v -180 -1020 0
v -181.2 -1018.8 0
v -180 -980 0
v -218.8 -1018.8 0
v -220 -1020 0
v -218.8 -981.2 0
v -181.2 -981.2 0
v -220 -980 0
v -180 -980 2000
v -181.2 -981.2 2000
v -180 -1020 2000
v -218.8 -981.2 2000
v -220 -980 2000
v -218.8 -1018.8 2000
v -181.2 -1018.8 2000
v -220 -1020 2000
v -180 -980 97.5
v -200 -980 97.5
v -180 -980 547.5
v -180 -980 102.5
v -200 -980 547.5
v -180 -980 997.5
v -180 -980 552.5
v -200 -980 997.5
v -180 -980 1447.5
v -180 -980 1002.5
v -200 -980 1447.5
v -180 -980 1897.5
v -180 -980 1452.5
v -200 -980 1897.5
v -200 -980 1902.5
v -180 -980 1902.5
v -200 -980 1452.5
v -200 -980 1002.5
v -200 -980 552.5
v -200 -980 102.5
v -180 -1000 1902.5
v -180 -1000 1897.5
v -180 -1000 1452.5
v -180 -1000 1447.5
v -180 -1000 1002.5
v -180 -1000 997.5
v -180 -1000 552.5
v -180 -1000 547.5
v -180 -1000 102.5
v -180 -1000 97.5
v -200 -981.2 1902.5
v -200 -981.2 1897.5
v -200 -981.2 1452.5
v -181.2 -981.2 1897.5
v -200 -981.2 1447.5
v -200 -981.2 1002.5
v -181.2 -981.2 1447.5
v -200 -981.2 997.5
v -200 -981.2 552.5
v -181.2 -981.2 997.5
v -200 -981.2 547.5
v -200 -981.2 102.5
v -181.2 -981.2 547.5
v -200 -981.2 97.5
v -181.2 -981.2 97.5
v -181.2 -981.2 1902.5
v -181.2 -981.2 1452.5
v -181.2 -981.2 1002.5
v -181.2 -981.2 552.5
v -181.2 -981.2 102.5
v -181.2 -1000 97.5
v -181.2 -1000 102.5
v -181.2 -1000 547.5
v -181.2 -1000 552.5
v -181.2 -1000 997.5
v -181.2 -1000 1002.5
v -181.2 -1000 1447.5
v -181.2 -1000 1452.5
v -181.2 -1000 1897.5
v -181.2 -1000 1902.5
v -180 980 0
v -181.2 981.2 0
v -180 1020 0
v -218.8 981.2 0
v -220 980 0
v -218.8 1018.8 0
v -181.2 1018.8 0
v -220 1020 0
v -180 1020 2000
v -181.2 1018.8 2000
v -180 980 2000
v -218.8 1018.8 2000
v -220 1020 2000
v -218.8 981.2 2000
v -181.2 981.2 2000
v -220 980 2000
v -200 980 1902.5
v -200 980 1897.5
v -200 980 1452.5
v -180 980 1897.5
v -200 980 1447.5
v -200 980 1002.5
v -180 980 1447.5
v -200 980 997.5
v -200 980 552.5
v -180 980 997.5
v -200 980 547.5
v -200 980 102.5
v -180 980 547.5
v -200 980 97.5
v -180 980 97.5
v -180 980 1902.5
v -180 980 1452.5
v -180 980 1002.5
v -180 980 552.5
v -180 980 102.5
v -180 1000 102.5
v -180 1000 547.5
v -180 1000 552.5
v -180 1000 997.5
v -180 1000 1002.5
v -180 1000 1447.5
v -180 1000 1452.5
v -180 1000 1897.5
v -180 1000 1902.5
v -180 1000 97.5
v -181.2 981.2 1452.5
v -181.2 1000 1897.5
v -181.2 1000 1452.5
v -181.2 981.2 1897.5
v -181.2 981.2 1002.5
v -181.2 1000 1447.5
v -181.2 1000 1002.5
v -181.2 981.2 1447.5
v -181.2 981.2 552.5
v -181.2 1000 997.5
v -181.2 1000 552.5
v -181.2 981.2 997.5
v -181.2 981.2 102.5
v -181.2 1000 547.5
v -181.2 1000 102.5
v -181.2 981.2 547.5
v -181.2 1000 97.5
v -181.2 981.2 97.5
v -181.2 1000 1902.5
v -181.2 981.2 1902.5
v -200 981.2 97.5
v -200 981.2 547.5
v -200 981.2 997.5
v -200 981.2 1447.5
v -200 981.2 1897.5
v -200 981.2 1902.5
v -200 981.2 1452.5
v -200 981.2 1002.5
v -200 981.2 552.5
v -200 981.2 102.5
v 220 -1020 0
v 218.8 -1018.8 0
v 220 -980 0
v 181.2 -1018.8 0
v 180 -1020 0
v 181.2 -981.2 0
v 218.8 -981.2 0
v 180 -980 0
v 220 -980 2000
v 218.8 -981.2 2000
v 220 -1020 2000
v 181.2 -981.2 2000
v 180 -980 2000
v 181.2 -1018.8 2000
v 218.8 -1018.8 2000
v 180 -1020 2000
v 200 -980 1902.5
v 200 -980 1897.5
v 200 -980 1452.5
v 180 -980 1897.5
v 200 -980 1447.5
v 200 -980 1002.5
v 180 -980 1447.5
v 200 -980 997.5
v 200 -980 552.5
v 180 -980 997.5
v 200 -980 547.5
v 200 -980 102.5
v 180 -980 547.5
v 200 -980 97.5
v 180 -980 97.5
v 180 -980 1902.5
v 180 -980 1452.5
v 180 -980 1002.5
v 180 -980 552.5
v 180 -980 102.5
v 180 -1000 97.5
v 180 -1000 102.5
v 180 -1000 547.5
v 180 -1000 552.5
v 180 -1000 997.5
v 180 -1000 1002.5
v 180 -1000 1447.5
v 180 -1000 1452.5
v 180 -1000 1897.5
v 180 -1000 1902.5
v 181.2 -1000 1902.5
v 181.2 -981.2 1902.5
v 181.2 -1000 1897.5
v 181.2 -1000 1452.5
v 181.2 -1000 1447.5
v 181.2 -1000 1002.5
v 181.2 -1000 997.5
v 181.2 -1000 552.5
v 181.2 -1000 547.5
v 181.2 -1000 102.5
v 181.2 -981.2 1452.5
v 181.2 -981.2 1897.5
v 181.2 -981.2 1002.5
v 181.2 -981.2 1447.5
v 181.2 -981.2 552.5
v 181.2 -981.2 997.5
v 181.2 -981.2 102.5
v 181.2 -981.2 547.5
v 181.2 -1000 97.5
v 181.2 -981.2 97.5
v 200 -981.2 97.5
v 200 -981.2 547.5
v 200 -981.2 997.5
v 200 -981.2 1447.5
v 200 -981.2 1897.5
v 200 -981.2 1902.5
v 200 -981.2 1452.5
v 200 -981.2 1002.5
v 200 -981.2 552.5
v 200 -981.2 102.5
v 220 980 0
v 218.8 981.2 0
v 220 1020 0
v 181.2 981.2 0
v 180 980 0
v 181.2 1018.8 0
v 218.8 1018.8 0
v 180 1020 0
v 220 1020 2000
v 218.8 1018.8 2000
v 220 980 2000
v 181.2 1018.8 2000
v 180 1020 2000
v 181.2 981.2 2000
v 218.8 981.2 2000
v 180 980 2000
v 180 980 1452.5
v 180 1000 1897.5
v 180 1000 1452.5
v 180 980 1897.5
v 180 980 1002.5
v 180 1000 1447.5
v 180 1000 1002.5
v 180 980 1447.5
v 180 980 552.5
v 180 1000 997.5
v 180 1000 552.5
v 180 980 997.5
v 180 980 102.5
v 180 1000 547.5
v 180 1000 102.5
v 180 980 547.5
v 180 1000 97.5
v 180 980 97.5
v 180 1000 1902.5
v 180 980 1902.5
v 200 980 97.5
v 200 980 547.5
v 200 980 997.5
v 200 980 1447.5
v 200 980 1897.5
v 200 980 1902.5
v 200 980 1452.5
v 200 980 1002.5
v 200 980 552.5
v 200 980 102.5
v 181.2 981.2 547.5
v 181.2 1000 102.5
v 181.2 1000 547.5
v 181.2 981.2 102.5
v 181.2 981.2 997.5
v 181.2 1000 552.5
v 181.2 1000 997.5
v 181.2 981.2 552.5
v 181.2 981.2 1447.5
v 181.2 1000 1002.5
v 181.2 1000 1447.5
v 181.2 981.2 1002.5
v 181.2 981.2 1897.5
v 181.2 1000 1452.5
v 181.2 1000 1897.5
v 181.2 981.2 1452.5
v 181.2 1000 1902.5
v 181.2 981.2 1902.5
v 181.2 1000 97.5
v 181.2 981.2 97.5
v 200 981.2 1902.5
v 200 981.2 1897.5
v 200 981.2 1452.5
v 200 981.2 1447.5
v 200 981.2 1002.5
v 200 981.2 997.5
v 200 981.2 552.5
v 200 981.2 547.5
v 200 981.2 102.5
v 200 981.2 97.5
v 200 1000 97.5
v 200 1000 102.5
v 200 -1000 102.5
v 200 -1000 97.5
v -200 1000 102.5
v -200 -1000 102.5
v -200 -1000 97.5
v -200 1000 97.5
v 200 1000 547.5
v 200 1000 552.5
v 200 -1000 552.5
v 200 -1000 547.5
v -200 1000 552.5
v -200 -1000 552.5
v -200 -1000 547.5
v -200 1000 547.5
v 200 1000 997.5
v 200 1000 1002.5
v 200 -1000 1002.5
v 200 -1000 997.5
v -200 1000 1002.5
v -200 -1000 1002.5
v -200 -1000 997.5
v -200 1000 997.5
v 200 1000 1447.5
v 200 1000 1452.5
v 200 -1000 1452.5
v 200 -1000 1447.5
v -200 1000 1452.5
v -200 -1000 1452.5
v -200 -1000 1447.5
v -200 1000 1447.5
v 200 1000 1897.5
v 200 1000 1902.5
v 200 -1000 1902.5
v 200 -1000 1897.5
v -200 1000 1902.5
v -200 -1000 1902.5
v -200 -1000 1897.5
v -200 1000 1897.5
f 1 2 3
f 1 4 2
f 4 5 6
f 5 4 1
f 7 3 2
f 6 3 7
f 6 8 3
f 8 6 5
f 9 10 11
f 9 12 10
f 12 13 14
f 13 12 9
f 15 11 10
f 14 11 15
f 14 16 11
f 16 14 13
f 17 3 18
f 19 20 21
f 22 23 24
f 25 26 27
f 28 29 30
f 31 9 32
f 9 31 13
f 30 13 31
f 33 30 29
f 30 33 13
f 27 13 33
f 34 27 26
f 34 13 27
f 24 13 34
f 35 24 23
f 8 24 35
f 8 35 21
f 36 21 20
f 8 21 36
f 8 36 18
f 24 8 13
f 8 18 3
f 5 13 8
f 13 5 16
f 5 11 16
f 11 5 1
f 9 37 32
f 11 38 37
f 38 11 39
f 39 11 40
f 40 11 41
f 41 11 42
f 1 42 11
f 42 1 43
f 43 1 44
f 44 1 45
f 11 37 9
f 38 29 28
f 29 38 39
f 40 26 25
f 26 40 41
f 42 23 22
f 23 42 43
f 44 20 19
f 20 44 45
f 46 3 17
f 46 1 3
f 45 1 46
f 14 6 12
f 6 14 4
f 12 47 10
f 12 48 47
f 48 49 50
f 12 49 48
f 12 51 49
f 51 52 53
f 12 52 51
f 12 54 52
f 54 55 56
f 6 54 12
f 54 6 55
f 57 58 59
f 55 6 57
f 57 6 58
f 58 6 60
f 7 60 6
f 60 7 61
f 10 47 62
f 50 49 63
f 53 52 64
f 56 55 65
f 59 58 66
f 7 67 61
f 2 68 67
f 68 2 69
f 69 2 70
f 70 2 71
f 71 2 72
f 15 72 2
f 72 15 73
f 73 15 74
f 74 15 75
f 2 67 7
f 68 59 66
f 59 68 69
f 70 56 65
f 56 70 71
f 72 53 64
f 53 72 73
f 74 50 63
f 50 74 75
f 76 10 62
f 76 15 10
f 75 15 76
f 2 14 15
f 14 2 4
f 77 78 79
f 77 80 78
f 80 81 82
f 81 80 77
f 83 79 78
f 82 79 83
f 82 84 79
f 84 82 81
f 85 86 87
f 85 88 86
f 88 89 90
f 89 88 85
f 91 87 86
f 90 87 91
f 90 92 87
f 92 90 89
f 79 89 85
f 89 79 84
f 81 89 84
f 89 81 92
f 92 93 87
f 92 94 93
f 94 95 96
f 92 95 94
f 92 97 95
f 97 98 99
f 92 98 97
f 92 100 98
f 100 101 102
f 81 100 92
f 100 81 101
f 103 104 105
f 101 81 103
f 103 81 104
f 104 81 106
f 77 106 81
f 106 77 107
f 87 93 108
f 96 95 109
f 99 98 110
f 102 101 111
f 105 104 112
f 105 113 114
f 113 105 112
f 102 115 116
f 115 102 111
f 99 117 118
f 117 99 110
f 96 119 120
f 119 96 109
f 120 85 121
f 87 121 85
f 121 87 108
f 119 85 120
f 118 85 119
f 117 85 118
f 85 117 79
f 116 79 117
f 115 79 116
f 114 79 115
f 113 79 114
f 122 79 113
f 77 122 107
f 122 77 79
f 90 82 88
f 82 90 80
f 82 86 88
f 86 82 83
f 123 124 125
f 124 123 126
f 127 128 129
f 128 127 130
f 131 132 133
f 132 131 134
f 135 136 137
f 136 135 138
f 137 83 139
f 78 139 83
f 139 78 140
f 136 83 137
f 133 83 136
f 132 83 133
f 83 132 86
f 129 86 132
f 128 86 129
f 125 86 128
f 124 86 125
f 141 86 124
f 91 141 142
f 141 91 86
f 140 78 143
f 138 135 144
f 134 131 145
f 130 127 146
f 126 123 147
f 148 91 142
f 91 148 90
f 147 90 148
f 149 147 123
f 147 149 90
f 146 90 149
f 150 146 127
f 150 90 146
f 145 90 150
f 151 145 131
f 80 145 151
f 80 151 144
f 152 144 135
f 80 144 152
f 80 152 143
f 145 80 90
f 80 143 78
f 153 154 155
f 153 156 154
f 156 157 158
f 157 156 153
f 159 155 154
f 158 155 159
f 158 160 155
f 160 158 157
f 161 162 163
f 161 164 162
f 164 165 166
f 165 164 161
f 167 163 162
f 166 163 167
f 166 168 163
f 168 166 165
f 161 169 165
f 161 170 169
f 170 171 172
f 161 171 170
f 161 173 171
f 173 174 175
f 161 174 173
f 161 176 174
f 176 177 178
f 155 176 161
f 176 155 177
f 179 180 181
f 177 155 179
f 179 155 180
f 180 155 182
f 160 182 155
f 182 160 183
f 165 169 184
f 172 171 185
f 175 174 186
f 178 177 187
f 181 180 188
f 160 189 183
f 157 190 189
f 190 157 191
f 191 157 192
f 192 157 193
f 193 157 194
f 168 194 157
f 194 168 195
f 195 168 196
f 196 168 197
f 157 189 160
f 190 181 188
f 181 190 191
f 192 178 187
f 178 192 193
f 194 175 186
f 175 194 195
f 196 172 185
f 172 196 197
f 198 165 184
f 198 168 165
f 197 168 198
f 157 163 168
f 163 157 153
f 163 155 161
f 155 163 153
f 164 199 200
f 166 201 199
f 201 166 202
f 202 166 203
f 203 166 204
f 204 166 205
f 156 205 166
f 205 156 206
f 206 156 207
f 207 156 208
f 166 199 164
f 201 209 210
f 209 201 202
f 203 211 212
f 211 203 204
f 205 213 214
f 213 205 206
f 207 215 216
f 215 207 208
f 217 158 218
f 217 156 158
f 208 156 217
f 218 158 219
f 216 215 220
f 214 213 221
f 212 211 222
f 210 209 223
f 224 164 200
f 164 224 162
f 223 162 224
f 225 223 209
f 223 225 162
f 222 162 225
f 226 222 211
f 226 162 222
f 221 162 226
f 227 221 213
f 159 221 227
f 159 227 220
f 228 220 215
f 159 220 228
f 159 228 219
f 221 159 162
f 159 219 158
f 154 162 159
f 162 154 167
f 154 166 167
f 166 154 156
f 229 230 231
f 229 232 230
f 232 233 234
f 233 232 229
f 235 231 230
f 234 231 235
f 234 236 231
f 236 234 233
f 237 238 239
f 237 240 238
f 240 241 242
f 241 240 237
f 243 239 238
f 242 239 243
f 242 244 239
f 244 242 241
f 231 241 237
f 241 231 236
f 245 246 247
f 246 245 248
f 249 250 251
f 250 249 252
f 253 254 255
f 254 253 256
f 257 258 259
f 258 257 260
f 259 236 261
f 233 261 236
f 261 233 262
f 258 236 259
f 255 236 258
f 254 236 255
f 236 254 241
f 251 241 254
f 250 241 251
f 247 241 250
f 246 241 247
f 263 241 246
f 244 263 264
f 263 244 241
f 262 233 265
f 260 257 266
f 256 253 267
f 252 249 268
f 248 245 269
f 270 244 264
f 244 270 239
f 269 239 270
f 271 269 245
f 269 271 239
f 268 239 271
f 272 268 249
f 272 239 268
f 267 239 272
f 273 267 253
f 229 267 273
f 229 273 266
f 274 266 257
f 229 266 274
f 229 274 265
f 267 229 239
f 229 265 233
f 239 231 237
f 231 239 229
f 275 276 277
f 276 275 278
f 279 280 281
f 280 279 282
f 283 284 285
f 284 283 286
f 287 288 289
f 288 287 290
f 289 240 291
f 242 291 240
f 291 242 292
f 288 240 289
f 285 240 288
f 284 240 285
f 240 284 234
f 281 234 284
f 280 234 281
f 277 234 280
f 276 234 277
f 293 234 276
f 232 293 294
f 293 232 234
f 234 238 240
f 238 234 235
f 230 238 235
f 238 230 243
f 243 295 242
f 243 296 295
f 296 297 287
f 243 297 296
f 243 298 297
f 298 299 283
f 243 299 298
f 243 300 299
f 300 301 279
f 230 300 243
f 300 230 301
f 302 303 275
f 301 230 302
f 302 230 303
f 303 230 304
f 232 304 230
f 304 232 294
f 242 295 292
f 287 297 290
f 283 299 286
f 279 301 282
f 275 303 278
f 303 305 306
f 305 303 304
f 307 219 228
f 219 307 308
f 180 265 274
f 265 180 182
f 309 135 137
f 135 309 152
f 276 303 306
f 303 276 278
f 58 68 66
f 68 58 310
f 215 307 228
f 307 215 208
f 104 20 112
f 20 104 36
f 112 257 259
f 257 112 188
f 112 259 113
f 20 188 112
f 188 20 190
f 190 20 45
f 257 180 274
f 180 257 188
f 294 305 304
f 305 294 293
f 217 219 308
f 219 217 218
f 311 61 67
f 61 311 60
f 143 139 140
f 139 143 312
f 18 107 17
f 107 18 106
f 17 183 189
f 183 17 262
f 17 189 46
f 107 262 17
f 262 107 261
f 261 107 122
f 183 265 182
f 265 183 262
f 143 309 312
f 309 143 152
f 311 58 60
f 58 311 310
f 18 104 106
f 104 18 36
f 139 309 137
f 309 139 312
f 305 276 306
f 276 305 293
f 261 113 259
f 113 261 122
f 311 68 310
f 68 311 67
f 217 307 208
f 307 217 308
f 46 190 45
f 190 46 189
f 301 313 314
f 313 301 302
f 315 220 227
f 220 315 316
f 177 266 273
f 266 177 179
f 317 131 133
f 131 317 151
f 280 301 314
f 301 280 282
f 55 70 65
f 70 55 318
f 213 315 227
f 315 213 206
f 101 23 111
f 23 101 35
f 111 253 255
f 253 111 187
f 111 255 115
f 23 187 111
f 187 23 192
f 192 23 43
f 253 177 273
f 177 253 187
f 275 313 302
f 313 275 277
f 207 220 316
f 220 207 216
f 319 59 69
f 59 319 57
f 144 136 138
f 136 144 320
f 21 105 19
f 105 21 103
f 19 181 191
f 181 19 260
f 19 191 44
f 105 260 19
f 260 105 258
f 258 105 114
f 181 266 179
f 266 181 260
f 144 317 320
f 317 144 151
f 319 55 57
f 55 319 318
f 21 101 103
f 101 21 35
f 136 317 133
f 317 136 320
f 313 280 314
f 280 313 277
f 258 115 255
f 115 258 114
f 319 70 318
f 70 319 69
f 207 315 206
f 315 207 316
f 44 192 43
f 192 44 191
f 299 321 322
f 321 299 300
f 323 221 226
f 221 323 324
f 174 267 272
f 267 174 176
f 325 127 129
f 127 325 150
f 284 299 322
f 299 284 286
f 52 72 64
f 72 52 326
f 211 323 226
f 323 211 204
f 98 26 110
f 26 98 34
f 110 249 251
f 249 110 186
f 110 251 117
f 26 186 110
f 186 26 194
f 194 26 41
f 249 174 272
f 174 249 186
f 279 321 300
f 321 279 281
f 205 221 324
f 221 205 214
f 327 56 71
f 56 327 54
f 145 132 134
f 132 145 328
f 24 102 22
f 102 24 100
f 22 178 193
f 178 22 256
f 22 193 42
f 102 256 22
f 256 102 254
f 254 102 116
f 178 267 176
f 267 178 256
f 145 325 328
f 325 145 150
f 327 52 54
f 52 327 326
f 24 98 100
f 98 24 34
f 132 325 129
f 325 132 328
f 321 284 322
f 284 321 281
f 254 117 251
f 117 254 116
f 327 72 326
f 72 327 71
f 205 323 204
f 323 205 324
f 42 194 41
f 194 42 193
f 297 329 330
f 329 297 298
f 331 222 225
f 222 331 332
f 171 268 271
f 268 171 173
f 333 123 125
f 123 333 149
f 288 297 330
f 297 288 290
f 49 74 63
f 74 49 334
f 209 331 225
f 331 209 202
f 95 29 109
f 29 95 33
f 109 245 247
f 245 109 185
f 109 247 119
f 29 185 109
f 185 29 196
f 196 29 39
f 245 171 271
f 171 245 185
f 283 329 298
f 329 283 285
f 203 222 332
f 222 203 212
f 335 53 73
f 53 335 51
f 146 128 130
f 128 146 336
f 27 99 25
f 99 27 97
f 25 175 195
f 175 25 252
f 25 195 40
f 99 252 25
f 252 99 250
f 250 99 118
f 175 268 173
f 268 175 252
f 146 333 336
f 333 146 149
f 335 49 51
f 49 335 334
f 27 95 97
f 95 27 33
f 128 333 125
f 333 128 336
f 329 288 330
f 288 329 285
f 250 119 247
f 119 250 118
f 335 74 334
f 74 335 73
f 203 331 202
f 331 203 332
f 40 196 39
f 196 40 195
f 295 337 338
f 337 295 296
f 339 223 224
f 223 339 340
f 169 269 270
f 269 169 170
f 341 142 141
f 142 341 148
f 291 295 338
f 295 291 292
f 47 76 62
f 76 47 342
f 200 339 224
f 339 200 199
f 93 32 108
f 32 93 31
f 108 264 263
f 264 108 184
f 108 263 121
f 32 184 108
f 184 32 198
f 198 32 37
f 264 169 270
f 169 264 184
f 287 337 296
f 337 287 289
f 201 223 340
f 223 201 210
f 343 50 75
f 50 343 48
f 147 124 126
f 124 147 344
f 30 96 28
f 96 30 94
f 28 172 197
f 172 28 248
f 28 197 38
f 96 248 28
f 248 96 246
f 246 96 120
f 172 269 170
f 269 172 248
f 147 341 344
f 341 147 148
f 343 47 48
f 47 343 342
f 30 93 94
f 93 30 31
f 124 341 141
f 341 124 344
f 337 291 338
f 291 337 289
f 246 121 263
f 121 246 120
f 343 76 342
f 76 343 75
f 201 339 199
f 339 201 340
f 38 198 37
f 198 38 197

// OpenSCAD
// file: RobotUtils/BOSL2/std.scad
// Minimal BOSL2 compatibility shim for bundled gallery models.
// It implements only the helpers used by the imported OpenSCAD projects.

CENTER = [0, 0, 0];
BOTTOM = [0, 0, -1];
TOP = [0, 0, 1];
LEFT = [-1, 0, 0];
RIGHT = [1, 0, 0];
FRONT = [0, -1, 0];
BACK = [0, 1, 0];

module up(z=0) {
    translate([0, 0, z]) children();
}

module down(z=0) {
    translate([0, 0, -z]) children();
}

module attach(anchor=CENTER) {
    children();
}

module cuboid(size=[1, 1, 1], anchor=CENTER) {
    center = anchor == CENTER;
    translate(center ? [0, 0, 0] : [0, 0, size[2] / 2])
        cube(size, center=true);
    children();
}

module xcyl(h=1, r=1, anchor=CENTER) {
    center = anchor == CENTER;
    translate(center ? [0, 0, 0] : [h / 2, 0, 0])
        rotate([0, 90, 0])
            cylinder(h=h, r=r, center=true);
}
// file: RobotUtils/core.scad
include <BOSL2/std.scad>
include <BOSL2/strings.scad>
include <beam.scad>

function extract_assembly_parts(display) = 
    (display=="*") ? ["*", "*"]: let(
        _dlist = (display=="*") ? ["*"] : str_split(display, "/"),
        _slist = (len(_dlist)>1) ? [for (i = [1: len(_dlist) -1]) _dlist[i]] : [],
        
        _d = _dlist[0],
        _s = (len(_slist)>0) ? str_join(_slist,"/") : "*"
    ) [_d, _s];
        
function get_full_prefix(base, prefix) = str_join([base, prefix], (len(base)==0)?"":"/");
        
module align_vectors(v1, v2){
    n1 = norm(v1);
    n2 = norm(v2);
    assert(n1>0);
    assert(n2>0);
    _cross=cross(v1,v2);
    _dot=v1*v2;
    n12 = n1*n2;
    ang = atan2(norm(_cross)/n12, _dot/n12);
    rotate(v=_cross, a=ang)
    children();
}

module FixedJoint(p_translate=[0,0,0], p_rotate=[0,0,0], name="joint_fixed", prefix=""){
    echo(["joint", "fixed", (len(prefix) == 0) ? name:str_join([prefix, "/", name]), str_join(["xyz: ", str(p_translate)]), str_join(["rpy: ", str(p_rotate)])])
    translate(p_translate)
    rotate(p_rotate)
    children();
}

module ContinuousJoint(
    p_translate=[0,0,0], p_rotate=[0,0,0], axis=[0,0,1], angle=$t*360, 
    name="joint_continuous", prefix="", 
    command_interfaces=[], mimic=[], spring=[], damping=[], friction=[], draw=false){
    echo(["joint", "continuous", 
        (len(prefix) == 0) ? name:str_join([prefix, "/", name]), 
        str_join(["xyz: ", str(p_translate)]), 
        str_join(["rpy: ", str(p_rotate)]), 
        str_join(["axis: ", str(axis)]), 
        str_replace_char(str_join(["command_interfaces: ", command_interfaces]), "\"", "\\\""), 
        str_replace_char(str_join(["mimic: ", mimic]), "\"", "\\\""),
        str_join(["spring: ", str(spring)]), 
        str_join(["damping: ", str(damping)]), 
        str_join(["friction: ", str(damping)])
    ])
    translate(p_translate)
    rotate(p_rotate){
        if (draw){
            color([0.7, 0.3, 0])
            extrude_along(axis, 50)
            circle(d=30);
        }
        rotate(angle, axis)
        children();
    }
}

module PrismaticJoint(
    p_translate=[0,0,0], p_rotate=[0,0,0], axis=[0,0,1], 
    unitpos=(-cos($t*360)+1)/2, name="joint_prismatic", prefix="", 
    limits=[-100, 100], command_interfaces=["position", "velocity", "effort"], mimic=[],
    spring=[], damping=[], friction=[], draw=false, pos=false, animate=true
    ){
    _extension = abs(limits[1]-limits[0]);
    _pos0 = pos==false?(limits[1]+limits[0])/2:pos;
    _t0 = acos(1-2*(_pos0-limits[0])/_extension)/360;
    _pos = animate ? (-cos( ($t - _t0)*360)+1)/2*_extension + limits[0] : _pos0;
    assert((_pos>=limits[0]) && (_pos<=limits[1]), "position must be between limits");
    
    echo(["joint", "prismatic", 
        (len(prefix) == 0) ? name:str_join([prefix, "/", name]),
        str_join(["xyz: ", str(p_translate)]),
        str_join(["rpy: ", str(p_rotate)]),
        str_join(["axis: ", str(axis)]), 
        str_join(["limits: ", str(limits)]), 
        str_replace_char(str_join(["command_interfaces: ", command_interfaces]), "\"", "\\\""), 
        str_replace_char(str_join(["mimic: ", mimic]), "\"", "\\\""), 
        str_join(["spring: ", str(spring)]), 
        str_join(["damping: ", str(damping)]), 
        str_join(["friction: ", str(damping)])
    ]);
    _uaxis = axis/norm(axis);
    
    translate(p_translate)
    rotate(p_rotate){
        if (draw){
            color([0.7, 0.3, 0])
            translate(axis*min(limits[0], limits[1]))
            extrude_along(axis, _extension, center=false)
            square(size=30, center=true);
        }
        translate(_uaxis*_pos)
        children();
    }
}


module RevoluteJoint(
    p_translate=[0,0,0], p_rotate=[0,0,0], axis=[0,0,1], 
    angle=false, name="joint_revolute", prefix="", 
    limits=[-100, 100], command_interfaces=[], mimic=[],
    spring=[], damping=[], friction=[], draw=false, animate=true
    ){
    _extension = abs(limits[1]-limits[0]);
    _angle0 = angle==false?(limits[1]+limits[0])/2:angle;
    _t0 = acos(1-2*(_angle0-limits[0])/_extension)/360;
    _angle = animate ? (-cos( ($t - _t0)*360)+1)/2*_extension + limits[0] : _angle0;
    assert((_angle>=limits[0]) && (_angle<=limits[1]), "angle must be between limits");
    //_abspos = _extension*unitpos+limits[0];
    
    echo(["joint", "revolute", 
        (len(prefix) == 0) ? name:str_join([prefix, "/", name]),
        str_join(["xyz: ", str(p_translate)]),
        str_join(["rpy: ", str(p_rotate)]),
        str_join(["axis: ", str(axis)]), 
        str_join(["limits: ", str(limits)]), 
        str_replace_char(str_join(["command_interfaces: ", command_interfaces]), "\"", "\\\""), 
        str_replace_char(str_join(["mimic: ", mimic]), "\"", "\\\""), 
        str_join(["spring: ", str(spring)]), 
        str_join(["damping: ", str(damping)]), 
        str_join(["friction: ", str(damping)])
    ]);
    _uaxis = axis/norm(axis);
    
    translate(p_translate)
    rotate(p_rotate){
        if (draw){
            color([0.7, 0.3, 0])
            extrude_along(axis, 50)
            circle(d=30);
        }
        rotate(_angle, axis)
        children();
    }
}

module Arrow3D(to, from=[0,0,0], cyl_d, cone_d, cone_h){
    delta = to-from;
    length=norm(delta);
    cyl_d = is_undef(cyl_d) ? length*0.05:cyl_d;
    cone_d = is_undef(cone_d) ? length*0.15:cone_d;
    cone_h = is_undef(cone_h) ? length*0.15:cone_h;
    
    translate(from)
    align_vectors([0,0,1],delta){
        cylinder(h=length-cone_h, d=cyl_d);
        translate([0,0,length-cone_h])
        cylinder(h=cone_h, d1=cone_d, d2=0);
    }
}

module ReferenceFrame($fn=4, factor=1){
    scale(factor){
        color([1,0,0])
        Arrow3D(to=[1,0,0]);
        color([0,1,0])
        Arrow3D(to=[0,1,0]);
        color([0,0,1])
        Arrow3D(to=[0,0,1]);
    }
}
ReferenceFrame($scale=1);
// file: RobotUtils/profiles.scad
module MakeProfileHollow(thickness){
    assert(thickness>0);
    difference(){
        children();
        offset(delta=-thickness)children();
    }
}

module vigueta(){polygon([[55,0],[55,36],[20,46],[25,80],[-25,80],[-20,46],[-55,36],[-55,0]]);}

module RectangularProfileHollow(size, thickness){
    MakeProfileHollow(thickness)square(size, center=true);
}

module CircularProfileHollow(d, thickness){
    MakeProfileHollow(thickness)circle(d=d);
}

RectangularProfileHollow([40,20], 2);

translate([0,50,0])
CircularProfileHollow(20, 1.2);

translate([0,100,0])
vigueta();

translate([0,-100,0])
MakeProfileHollow(5)vigueta();
// file: RobotUtils/beam.scad
use <core.scad>
use <profiles.scad>

function d3d(p1,p2)=norm(p2-p1);
function d2d(p1,p2)=let(dp=p2-p1)norm([dp[0], dp[1]]);

module beam2(N1,N2,beta_angle){
    /*
    extrude profile from point N1 to point N2, with profile angle beta_angle
    usage:
        beam2(N1,N2,beta_angle)<2d-profile>;
    args:
        N1: [x1,y1,z1] (init point)
        N2: [x2,y2,z2] (final point)
        beta_angle: float (profile angle)
    */
lenght=d3d(N1,N2);
    rot_y=atan((N1[2]-N2[2])/d2d([N1[0],N1[1]],[N2[0],N2[1]]));
rot_z=atan2(N2[1]-N1[1],N2[0]-N1[0]);
translate(N1)rotate([beta_angle,rot_y,rot_z])rotate([90,0,90])linear_extrude(lenght)children();
}

module beam3(N1, N2, profile_angle=0){
    /*
    extrude profile from point N1 to point N2, with profile angle beta_angle
    usage:
        beam3(N1,N2,beta_angle)<2d-profile>;
    args:
        N1: [x1,y1,z1] (init point)
        N2: [x2,y2,z2] (final point)
        profile_angle: float (profile angle)
    */
    vector = N2-N1;
    length = norm(vector);
    assert(length>0);
    align_z(N1,N2)
    linear_extrude(length)rotate(profile_angle)
    children();
}

module extrude_along(axis, length, profile_angle=0, center=true){
    align_vectors([0,0,1], axis)
    linear_extrude(length, center=center)rotate(profile_angle)
    children();
}

module align_z(N1=[0,0,0],N2){
    _align = get_z_alignment(N1=N1,N2=N2);
    translate(N1)
    rotate(v=_align[0], a=_align[1])
    children();
}

function get_z_alignment(N1=[0,0,0],N2)=let(
    v = N2-N1,
    u = v/norm(v),
    _cross=cross([0,0,1], u),
    dot=[0,0,1]*u,
    ang = atan2(norm(_cross), dot)
    )[_cross, ang];


n1=[100,0,0];
n2=[0,0,200];
beam2(n1,n2,90)MakeProfileHollow(5)vigueta();
translate([0,200,0])beam2(n1,n2,0)vigueta();

translate([0,-200,0])beam2(n1,n2,90)RectangularProfileHollow([40,20],2);

translate([-200,0,0])beam2(n1,n2,90)CircularProfileHollow(d=20,thickness=2);

translate([100, -200, 0])
beam3(n1,n2,90)
RectangularProfileHollow([40,20],2);

beam3([0,0,0], [0,0,1e3], 0)
translate([20,10,0])
RectangularProfileHollow([40,20],2);

beam3([0,0,0], [1e3,0,0], 0)
translate([20,10,0])
RectangularProfileHollow([40,20],2);

beam3([0,0,0], [0,1e3,0], 0)
translate([20,10,0])
RectangularProfileHollow([40,20],2);
// main file
use <RobotUtils/beam.scad>
use <RobotUtils/profiles.scad>

module Estanteria(){
    for (x=[-1, 1])
    for (y=[-1, 1]){
        translate([x*200, y*1000, 0])
        extrude_along([0,0,1], length=2000, center=false)
        RectangularProfileHollow(40, 1.2);
    }
    
    for (z=[100:450:2000]){
        translate([0,0,z])
        cube([400, 2000, 5], center=true); 
    }
}

Estanteria();
